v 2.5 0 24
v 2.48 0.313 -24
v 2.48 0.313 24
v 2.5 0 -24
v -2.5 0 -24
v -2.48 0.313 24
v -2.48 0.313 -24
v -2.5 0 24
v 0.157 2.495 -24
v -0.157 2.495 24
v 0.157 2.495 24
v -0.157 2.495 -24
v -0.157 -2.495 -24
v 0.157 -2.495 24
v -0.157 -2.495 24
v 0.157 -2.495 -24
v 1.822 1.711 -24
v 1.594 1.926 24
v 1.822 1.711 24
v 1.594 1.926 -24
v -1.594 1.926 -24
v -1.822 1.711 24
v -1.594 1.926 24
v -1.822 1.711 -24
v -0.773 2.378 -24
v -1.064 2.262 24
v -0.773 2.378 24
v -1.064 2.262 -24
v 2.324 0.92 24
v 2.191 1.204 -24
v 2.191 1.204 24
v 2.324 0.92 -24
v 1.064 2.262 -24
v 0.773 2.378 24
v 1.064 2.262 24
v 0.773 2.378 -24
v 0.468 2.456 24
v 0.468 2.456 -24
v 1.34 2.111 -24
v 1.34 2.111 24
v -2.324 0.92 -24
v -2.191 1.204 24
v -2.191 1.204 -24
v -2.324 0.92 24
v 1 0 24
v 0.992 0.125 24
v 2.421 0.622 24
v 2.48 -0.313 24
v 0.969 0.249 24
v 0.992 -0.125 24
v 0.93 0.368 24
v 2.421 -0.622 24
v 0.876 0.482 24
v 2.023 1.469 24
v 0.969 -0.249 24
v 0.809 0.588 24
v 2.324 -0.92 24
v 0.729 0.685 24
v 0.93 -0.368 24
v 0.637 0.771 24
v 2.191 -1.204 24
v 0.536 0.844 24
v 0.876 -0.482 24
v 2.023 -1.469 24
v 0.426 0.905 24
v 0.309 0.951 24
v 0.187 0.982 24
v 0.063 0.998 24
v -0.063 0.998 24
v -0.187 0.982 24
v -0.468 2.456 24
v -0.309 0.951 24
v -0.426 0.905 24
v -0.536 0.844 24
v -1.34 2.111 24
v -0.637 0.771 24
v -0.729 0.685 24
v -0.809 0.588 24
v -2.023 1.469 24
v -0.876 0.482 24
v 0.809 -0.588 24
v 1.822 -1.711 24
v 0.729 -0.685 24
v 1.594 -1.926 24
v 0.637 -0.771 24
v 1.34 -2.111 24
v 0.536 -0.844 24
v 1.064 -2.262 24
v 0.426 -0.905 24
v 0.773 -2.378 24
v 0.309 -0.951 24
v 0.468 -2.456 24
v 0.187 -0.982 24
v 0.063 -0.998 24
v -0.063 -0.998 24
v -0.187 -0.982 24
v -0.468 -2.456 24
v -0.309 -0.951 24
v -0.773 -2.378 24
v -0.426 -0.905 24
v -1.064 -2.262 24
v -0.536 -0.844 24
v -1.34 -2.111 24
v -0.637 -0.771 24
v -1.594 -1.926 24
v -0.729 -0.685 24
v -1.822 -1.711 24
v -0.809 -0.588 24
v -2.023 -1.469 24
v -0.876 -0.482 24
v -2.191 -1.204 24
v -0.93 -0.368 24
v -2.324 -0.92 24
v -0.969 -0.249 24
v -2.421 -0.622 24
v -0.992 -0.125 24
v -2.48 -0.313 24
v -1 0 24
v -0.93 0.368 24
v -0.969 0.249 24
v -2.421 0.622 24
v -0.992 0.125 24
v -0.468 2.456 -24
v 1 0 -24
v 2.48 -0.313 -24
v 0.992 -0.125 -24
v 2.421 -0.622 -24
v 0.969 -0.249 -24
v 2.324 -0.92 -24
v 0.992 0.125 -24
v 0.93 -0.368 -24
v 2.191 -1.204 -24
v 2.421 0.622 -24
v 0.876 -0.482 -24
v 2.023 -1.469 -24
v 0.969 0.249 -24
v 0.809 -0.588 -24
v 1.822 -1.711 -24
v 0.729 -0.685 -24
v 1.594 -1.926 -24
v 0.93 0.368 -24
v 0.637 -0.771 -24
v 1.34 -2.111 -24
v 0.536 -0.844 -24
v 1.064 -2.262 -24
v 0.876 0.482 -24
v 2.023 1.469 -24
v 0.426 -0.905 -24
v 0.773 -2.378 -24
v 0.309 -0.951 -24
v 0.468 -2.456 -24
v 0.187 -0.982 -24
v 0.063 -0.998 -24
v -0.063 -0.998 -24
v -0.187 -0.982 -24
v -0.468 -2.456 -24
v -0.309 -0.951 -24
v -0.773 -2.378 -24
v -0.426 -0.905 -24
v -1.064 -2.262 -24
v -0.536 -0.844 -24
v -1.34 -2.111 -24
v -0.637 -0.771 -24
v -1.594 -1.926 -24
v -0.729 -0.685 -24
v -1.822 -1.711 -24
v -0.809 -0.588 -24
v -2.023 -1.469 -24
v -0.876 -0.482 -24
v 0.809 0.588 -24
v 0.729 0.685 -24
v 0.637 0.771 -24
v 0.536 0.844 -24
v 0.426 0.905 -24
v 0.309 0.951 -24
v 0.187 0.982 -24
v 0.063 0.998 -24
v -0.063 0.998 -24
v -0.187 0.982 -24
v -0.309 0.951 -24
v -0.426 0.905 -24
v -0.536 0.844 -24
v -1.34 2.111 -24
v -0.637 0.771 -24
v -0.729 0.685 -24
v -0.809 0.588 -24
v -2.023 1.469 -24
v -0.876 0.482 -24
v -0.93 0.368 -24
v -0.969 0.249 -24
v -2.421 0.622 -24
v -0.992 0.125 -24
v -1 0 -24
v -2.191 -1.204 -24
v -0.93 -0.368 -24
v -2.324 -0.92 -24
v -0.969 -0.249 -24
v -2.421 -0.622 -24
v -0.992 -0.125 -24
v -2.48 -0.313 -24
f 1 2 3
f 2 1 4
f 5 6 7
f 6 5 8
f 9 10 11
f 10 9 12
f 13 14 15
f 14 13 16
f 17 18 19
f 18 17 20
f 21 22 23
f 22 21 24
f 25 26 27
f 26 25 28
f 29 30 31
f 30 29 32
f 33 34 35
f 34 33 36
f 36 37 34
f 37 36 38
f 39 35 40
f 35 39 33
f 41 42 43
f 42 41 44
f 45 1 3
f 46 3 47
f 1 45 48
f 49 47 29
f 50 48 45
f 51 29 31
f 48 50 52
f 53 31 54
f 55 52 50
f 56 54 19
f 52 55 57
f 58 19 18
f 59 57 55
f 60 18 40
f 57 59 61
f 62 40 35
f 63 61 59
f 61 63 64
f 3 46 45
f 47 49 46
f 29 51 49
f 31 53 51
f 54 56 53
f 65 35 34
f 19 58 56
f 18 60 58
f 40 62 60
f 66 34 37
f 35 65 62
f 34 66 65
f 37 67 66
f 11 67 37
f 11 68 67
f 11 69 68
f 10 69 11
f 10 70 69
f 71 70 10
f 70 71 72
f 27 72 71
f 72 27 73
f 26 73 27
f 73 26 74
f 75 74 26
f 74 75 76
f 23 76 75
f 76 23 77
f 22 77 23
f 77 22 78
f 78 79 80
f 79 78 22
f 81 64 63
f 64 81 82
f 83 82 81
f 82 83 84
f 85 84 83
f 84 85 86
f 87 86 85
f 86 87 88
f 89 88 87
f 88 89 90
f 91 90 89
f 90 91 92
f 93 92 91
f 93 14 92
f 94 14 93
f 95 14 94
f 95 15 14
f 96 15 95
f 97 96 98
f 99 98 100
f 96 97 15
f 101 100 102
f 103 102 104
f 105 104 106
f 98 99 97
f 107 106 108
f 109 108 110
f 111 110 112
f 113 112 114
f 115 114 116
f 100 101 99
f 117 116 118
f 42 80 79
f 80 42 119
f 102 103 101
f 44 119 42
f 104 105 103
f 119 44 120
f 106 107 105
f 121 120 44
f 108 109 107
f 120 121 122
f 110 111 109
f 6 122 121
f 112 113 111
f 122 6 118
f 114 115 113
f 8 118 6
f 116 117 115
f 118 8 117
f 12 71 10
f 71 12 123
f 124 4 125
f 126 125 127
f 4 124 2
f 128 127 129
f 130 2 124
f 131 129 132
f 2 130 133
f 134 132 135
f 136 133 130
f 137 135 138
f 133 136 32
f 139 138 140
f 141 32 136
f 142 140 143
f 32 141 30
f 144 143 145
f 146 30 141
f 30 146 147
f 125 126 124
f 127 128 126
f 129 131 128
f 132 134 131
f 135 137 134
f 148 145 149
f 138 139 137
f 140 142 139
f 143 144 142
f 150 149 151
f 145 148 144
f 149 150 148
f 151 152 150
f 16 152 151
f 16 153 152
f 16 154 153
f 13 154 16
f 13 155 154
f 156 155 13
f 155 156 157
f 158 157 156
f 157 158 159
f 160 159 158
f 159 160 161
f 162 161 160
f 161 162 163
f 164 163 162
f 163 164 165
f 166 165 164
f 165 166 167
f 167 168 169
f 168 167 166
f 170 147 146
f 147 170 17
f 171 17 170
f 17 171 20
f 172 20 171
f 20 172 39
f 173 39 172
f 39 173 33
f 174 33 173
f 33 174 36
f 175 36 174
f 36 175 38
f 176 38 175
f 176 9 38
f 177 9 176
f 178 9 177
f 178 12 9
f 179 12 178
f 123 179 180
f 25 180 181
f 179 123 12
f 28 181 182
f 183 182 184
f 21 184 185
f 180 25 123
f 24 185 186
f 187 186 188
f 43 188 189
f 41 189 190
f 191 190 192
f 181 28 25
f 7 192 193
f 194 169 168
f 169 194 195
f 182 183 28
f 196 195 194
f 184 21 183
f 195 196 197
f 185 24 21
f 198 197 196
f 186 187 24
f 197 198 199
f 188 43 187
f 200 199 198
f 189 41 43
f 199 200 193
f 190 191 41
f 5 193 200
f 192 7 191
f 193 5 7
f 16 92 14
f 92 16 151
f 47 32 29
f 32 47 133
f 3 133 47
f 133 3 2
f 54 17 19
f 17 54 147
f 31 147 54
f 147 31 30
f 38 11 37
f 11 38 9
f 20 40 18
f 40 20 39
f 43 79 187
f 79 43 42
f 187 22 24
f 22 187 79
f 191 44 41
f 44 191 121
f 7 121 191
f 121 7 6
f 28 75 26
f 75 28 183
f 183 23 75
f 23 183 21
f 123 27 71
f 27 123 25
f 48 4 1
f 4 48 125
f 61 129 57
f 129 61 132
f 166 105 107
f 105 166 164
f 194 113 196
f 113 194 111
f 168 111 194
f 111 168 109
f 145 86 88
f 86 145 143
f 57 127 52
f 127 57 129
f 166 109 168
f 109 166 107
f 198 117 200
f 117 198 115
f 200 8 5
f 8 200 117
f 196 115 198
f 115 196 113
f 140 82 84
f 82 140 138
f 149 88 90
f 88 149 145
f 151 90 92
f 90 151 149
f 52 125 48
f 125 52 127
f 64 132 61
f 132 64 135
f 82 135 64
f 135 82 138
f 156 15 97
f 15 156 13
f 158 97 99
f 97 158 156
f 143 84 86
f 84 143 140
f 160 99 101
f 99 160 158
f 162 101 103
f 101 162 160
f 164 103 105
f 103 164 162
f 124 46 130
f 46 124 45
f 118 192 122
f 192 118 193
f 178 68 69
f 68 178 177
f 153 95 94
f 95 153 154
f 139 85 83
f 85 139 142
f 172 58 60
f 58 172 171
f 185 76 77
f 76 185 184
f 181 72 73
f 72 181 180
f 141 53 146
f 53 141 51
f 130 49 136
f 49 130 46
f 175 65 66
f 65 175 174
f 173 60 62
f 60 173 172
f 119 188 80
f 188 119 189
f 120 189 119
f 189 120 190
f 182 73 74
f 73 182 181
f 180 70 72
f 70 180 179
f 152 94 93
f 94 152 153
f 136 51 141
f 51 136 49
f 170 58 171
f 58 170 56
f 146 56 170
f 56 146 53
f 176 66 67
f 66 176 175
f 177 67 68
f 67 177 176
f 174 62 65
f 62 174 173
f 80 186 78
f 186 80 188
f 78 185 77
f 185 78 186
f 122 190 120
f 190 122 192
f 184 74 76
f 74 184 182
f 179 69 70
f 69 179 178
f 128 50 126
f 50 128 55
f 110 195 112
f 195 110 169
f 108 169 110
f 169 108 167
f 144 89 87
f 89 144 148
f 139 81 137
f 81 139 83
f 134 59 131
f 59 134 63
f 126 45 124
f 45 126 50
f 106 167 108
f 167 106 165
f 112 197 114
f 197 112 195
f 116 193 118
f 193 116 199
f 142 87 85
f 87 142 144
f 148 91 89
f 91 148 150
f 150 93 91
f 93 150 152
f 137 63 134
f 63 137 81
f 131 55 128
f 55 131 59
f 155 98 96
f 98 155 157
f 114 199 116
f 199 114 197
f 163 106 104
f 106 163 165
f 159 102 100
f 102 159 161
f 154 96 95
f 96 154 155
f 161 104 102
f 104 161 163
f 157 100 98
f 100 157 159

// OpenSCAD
$fn = 50;


difference() {
	union() {
		translate(v = [0, 0, -24.0000000000]) {
			cylinder(h = 48, r = 2.5000000000);
		}
	}
	union() {
		translate(v = [0, 0, -100.0000000000]) {
			cylinder(h = 200, r = 1.0000000000);
		}
	}
}
